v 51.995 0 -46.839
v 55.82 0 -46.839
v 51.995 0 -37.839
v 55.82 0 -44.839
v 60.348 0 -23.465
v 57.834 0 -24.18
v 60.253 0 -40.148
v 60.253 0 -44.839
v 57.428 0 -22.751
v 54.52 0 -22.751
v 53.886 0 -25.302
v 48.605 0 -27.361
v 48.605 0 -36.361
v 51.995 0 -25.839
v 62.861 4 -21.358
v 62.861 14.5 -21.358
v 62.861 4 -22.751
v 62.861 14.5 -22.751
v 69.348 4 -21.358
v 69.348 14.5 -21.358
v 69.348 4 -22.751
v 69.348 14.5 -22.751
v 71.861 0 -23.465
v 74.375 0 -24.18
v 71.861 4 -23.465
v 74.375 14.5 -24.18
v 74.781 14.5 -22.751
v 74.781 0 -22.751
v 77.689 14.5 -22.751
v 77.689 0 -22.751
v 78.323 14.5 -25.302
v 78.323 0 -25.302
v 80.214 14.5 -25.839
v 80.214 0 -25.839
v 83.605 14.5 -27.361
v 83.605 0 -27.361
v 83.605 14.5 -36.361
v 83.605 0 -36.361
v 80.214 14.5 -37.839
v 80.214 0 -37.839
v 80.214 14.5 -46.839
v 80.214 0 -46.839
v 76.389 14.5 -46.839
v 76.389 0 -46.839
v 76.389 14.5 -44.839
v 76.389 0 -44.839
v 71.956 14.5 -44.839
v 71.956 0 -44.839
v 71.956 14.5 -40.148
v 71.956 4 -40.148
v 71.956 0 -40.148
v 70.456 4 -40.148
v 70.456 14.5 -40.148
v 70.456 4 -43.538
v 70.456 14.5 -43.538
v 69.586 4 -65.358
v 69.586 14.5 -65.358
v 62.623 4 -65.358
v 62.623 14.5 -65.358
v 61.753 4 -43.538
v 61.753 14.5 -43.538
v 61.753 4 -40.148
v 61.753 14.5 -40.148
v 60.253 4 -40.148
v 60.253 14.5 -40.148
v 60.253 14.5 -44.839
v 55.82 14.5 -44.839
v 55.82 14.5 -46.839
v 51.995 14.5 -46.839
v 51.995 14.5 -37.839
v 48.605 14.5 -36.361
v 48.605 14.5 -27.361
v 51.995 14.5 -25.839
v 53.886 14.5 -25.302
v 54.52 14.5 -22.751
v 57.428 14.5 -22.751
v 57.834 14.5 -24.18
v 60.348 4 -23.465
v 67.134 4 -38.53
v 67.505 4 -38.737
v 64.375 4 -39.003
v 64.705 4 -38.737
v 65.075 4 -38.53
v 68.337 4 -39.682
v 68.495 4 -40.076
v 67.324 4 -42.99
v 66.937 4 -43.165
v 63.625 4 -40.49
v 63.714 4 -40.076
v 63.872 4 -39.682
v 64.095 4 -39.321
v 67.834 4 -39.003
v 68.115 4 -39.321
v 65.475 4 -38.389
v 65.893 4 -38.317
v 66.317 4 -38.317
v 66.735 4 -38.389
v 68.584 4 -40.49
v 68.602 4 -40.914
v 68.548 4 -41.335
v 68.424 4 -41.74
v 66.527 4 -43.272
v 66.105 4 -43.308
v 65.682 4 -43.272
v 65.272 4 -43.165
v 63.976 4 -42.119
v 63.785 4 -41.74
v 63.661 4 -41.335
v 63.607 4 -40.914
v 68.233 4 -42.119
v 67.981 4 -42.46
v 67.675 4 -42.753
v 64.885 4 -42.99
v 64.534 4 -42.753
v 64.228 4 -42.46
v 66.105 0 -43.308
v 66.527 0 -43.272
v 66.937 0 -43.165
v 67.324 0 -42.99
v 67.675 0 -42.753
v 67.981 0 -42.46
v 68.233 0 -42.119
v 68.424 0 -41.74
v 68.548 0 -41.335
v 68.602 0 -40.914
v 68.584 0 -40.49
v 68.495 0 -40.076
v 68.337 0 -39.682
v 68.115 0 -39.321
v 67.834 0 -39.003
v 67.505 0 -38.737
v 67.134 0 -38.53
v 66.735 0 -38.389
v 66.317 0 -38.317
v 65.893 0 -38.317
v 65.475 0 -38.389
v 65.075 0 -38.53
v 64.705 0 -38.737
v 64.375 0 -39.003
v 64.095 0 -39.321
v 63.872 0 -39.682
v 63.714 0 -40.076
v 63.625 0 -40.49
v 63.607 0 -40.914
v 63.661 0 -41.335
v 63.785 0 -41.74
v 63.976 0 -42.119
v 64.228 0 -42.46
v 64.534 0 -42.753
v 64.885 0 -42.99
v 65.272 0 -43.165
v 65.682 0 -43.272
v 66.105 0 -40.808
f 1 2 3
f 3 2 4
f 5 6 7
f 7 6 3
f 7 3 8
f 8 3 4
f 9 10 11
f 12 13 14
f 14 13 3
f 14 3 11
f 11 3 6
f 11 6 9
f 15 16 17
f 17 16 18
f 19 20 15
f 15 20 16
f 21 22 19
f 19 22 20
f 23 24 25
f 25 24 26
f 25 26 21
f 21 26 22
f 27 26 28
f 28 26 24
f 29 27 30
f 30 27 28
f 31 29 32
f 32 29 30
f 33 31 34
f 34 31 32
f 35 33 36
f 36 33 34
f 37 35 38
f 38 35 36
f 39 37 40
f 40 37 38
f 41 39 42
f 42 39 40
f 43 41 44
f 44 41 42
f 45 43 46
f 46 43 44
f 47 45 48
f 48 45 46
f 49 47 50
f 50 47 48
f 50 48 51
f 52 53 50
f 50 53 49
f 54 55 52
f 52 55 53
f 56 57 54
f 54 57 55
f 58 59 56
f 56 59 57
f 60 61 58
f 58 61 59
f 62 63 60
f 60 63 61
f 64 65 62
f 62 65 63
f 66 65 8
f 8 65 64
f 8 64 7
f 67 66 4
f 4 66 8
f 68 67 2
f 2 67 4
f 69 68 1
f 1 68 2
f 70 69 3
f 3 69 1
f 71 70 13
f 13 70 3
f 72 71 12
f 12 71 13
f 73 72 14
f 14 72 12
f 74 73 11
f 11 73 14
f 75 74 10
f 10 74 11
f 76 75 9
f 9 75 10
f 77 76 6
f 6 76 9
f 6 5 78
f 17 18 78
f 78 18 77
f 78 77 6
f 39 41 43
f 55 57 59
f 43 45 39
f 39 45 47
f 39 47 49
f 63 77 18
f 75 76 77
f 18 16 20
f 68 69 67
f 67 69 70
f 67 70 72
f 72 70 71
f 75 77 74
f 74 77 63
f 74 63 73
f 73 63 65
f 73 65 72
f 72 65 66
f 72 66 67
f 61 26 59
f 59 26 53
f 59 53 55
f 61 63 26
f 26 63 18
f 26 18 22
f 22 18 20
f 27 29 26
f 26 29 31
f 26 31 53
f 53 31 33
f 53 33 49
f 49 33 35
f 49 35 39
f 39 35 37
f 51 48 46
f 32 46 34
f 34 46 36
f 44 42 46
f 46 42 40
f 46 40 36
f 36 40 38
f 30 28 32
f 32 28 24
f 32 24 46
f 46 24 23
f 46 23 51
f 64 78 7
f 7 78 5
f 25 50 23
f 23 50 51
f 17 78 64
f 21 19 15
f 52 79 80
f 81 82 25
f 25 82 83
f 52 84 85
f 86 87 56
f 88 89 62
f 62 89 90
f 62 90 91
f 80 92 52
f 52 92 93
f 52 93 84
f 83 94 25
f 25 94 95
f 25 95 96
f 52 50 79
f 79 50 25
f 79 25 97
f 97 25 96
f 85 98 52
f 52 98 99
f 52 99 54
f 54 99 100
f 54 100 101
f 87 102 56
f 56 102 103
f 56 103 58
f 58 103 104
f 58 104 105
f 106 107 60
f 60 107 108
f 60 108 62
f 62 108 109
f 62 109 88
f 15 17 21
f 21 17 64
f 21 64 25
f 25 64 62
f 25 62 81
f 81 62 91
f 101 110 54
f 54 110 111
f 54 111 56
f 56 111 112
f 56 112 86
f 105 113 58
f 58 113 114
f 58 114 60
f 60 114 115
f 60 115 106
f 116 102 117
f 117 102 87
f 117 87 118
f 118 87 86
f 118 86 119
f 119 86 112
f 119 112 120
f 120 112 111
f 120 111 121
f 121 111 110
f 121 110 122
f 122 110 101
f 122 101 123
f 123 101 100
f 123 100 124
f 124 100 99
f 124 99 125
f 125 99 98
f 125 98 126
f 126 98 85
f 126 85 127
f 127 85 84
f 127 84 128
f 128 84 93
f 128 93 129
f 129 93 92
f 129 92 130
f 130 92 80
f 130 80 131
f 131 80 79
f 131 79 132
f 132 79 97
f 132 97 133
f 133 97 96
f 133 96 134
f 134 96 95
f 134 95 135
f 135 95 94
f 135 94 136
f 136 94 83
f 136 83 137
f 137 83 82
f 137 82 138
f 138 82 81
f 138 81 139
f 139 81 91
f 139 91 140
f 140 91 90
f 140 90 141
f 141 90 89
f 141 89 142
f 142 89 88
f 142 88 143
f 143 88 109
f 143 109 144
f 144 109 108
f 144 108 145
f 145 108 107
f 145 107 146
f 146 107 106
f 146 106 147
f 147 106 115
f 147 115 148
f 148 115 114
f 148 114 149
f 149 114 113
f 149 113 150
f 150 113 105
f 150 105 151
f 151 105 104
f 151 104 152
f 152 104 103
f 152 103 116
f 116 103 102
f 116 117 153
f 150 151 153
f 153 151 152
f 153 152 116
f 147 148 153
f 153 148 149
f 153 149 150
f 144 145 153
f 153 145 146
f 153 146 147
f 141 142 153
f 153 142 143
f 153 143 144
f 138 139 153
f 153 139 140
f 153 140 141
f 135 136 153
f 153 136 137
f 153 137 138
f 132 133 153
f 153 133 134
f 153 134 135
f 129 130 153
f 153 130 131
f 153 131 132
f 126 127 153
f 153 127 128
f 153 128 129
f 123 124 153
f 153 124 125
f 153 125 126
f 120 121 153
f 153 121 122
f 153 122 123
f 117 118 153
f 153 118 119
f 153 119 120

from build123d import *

# Parameters (mm, degrees)
BOSS_EXTRUDE1_DEPTH = 14.5
SKETCH2_R           = 2.5
CUT_EXTRUDE1_DEPTH  = 4


with BuildPart() as part:
    # Sketch1 → Boss-Extrude1 (new body)
    with BuildSketch(Plane(origin=(0, 0, 0), x_dir=(1, 0, 0), z_dir=(0, 1, 0))):
        Polygon((69.586467452, 65.357930026), (62.622760441, 65.357930026), (61.753444713, 43.538105233), (61.753444713, 40.147773891), (60.253444713, 40.147773891), (60.253444713, 44.839166535), (55.819934496, 44.839166535), (55.819934496, 46.839166535), (51.994945289, 46.839166535), (51.994945289, 37.839166535), (48.604613947, 36.361329796), (48.604613947, 27.361329796), (51.994945289, 25.839166535), (53.886066531, 25.301731423), (54.520425265, 22.751046211), (57.428168594, 22.751046211), (57.834181975, 24.179721996), (62.861391899, 22.751046211), (62.861391899, 21.357930026), (69.347835994, 21.357930026), (69.347835994, 22.751046211), (74.375045918, 24.179721996), (74.781059299, 22.751046211), (77.688802628, 22.751046211), (78.323161362, 25.301731423), (80.214282604, 25.839166535), (83.604613947, 27.361329796), (83.604613947, 36.361329796), (80.214282604, 37.839166535), (80.214282604, 46.839166535), (76.389293398, 46.839166535), (76.389293398, 44.839166535), (71.955783181, 44.839166535), (71.955783181, 40.147773891), (70.455783181, 40.147773891), (70.455783181, 43.538105233), align=None)
    extrude(amount=BOSS_EXTRUDE1_DEPTH)

    # Sketch2 → Cut-Extrude1 (cut)
    with BuildSketch(Plane(origin=(0, 0, 0), x_dir=(-1, 0, 0), z_dir=(0, -1, 0))):
        Polygon((-60.253444713, 40.147773891), (-60.347786937, 23.465384103), (-62.861391899, 22.751046211), (-62.861391899, 21.357930026), (-69.347835994, 21.357930026), (-69.347835994, 22.751046211), (-71.861440956, 23.465384103), (-71.955783181, 40.147773891), (-70.455783181, 40.147773891), (-70.455783181, 43.538105233), (-69.586467452, 65.357930026), (-62.622760441, 65.357930026), (-61.753444713, 43.538105233), (-61.753444713, 40.147773891), align=None)
        with Locations((-66.104613947, 40.807926742)):
            Circle(SKETCH2_R, mode=Mode.SUBTRACT)
    extrude(amount=-CUT_EXTRUDE1_DEPTH, mode=Mode.SUBTRACT)


solid = part.part
